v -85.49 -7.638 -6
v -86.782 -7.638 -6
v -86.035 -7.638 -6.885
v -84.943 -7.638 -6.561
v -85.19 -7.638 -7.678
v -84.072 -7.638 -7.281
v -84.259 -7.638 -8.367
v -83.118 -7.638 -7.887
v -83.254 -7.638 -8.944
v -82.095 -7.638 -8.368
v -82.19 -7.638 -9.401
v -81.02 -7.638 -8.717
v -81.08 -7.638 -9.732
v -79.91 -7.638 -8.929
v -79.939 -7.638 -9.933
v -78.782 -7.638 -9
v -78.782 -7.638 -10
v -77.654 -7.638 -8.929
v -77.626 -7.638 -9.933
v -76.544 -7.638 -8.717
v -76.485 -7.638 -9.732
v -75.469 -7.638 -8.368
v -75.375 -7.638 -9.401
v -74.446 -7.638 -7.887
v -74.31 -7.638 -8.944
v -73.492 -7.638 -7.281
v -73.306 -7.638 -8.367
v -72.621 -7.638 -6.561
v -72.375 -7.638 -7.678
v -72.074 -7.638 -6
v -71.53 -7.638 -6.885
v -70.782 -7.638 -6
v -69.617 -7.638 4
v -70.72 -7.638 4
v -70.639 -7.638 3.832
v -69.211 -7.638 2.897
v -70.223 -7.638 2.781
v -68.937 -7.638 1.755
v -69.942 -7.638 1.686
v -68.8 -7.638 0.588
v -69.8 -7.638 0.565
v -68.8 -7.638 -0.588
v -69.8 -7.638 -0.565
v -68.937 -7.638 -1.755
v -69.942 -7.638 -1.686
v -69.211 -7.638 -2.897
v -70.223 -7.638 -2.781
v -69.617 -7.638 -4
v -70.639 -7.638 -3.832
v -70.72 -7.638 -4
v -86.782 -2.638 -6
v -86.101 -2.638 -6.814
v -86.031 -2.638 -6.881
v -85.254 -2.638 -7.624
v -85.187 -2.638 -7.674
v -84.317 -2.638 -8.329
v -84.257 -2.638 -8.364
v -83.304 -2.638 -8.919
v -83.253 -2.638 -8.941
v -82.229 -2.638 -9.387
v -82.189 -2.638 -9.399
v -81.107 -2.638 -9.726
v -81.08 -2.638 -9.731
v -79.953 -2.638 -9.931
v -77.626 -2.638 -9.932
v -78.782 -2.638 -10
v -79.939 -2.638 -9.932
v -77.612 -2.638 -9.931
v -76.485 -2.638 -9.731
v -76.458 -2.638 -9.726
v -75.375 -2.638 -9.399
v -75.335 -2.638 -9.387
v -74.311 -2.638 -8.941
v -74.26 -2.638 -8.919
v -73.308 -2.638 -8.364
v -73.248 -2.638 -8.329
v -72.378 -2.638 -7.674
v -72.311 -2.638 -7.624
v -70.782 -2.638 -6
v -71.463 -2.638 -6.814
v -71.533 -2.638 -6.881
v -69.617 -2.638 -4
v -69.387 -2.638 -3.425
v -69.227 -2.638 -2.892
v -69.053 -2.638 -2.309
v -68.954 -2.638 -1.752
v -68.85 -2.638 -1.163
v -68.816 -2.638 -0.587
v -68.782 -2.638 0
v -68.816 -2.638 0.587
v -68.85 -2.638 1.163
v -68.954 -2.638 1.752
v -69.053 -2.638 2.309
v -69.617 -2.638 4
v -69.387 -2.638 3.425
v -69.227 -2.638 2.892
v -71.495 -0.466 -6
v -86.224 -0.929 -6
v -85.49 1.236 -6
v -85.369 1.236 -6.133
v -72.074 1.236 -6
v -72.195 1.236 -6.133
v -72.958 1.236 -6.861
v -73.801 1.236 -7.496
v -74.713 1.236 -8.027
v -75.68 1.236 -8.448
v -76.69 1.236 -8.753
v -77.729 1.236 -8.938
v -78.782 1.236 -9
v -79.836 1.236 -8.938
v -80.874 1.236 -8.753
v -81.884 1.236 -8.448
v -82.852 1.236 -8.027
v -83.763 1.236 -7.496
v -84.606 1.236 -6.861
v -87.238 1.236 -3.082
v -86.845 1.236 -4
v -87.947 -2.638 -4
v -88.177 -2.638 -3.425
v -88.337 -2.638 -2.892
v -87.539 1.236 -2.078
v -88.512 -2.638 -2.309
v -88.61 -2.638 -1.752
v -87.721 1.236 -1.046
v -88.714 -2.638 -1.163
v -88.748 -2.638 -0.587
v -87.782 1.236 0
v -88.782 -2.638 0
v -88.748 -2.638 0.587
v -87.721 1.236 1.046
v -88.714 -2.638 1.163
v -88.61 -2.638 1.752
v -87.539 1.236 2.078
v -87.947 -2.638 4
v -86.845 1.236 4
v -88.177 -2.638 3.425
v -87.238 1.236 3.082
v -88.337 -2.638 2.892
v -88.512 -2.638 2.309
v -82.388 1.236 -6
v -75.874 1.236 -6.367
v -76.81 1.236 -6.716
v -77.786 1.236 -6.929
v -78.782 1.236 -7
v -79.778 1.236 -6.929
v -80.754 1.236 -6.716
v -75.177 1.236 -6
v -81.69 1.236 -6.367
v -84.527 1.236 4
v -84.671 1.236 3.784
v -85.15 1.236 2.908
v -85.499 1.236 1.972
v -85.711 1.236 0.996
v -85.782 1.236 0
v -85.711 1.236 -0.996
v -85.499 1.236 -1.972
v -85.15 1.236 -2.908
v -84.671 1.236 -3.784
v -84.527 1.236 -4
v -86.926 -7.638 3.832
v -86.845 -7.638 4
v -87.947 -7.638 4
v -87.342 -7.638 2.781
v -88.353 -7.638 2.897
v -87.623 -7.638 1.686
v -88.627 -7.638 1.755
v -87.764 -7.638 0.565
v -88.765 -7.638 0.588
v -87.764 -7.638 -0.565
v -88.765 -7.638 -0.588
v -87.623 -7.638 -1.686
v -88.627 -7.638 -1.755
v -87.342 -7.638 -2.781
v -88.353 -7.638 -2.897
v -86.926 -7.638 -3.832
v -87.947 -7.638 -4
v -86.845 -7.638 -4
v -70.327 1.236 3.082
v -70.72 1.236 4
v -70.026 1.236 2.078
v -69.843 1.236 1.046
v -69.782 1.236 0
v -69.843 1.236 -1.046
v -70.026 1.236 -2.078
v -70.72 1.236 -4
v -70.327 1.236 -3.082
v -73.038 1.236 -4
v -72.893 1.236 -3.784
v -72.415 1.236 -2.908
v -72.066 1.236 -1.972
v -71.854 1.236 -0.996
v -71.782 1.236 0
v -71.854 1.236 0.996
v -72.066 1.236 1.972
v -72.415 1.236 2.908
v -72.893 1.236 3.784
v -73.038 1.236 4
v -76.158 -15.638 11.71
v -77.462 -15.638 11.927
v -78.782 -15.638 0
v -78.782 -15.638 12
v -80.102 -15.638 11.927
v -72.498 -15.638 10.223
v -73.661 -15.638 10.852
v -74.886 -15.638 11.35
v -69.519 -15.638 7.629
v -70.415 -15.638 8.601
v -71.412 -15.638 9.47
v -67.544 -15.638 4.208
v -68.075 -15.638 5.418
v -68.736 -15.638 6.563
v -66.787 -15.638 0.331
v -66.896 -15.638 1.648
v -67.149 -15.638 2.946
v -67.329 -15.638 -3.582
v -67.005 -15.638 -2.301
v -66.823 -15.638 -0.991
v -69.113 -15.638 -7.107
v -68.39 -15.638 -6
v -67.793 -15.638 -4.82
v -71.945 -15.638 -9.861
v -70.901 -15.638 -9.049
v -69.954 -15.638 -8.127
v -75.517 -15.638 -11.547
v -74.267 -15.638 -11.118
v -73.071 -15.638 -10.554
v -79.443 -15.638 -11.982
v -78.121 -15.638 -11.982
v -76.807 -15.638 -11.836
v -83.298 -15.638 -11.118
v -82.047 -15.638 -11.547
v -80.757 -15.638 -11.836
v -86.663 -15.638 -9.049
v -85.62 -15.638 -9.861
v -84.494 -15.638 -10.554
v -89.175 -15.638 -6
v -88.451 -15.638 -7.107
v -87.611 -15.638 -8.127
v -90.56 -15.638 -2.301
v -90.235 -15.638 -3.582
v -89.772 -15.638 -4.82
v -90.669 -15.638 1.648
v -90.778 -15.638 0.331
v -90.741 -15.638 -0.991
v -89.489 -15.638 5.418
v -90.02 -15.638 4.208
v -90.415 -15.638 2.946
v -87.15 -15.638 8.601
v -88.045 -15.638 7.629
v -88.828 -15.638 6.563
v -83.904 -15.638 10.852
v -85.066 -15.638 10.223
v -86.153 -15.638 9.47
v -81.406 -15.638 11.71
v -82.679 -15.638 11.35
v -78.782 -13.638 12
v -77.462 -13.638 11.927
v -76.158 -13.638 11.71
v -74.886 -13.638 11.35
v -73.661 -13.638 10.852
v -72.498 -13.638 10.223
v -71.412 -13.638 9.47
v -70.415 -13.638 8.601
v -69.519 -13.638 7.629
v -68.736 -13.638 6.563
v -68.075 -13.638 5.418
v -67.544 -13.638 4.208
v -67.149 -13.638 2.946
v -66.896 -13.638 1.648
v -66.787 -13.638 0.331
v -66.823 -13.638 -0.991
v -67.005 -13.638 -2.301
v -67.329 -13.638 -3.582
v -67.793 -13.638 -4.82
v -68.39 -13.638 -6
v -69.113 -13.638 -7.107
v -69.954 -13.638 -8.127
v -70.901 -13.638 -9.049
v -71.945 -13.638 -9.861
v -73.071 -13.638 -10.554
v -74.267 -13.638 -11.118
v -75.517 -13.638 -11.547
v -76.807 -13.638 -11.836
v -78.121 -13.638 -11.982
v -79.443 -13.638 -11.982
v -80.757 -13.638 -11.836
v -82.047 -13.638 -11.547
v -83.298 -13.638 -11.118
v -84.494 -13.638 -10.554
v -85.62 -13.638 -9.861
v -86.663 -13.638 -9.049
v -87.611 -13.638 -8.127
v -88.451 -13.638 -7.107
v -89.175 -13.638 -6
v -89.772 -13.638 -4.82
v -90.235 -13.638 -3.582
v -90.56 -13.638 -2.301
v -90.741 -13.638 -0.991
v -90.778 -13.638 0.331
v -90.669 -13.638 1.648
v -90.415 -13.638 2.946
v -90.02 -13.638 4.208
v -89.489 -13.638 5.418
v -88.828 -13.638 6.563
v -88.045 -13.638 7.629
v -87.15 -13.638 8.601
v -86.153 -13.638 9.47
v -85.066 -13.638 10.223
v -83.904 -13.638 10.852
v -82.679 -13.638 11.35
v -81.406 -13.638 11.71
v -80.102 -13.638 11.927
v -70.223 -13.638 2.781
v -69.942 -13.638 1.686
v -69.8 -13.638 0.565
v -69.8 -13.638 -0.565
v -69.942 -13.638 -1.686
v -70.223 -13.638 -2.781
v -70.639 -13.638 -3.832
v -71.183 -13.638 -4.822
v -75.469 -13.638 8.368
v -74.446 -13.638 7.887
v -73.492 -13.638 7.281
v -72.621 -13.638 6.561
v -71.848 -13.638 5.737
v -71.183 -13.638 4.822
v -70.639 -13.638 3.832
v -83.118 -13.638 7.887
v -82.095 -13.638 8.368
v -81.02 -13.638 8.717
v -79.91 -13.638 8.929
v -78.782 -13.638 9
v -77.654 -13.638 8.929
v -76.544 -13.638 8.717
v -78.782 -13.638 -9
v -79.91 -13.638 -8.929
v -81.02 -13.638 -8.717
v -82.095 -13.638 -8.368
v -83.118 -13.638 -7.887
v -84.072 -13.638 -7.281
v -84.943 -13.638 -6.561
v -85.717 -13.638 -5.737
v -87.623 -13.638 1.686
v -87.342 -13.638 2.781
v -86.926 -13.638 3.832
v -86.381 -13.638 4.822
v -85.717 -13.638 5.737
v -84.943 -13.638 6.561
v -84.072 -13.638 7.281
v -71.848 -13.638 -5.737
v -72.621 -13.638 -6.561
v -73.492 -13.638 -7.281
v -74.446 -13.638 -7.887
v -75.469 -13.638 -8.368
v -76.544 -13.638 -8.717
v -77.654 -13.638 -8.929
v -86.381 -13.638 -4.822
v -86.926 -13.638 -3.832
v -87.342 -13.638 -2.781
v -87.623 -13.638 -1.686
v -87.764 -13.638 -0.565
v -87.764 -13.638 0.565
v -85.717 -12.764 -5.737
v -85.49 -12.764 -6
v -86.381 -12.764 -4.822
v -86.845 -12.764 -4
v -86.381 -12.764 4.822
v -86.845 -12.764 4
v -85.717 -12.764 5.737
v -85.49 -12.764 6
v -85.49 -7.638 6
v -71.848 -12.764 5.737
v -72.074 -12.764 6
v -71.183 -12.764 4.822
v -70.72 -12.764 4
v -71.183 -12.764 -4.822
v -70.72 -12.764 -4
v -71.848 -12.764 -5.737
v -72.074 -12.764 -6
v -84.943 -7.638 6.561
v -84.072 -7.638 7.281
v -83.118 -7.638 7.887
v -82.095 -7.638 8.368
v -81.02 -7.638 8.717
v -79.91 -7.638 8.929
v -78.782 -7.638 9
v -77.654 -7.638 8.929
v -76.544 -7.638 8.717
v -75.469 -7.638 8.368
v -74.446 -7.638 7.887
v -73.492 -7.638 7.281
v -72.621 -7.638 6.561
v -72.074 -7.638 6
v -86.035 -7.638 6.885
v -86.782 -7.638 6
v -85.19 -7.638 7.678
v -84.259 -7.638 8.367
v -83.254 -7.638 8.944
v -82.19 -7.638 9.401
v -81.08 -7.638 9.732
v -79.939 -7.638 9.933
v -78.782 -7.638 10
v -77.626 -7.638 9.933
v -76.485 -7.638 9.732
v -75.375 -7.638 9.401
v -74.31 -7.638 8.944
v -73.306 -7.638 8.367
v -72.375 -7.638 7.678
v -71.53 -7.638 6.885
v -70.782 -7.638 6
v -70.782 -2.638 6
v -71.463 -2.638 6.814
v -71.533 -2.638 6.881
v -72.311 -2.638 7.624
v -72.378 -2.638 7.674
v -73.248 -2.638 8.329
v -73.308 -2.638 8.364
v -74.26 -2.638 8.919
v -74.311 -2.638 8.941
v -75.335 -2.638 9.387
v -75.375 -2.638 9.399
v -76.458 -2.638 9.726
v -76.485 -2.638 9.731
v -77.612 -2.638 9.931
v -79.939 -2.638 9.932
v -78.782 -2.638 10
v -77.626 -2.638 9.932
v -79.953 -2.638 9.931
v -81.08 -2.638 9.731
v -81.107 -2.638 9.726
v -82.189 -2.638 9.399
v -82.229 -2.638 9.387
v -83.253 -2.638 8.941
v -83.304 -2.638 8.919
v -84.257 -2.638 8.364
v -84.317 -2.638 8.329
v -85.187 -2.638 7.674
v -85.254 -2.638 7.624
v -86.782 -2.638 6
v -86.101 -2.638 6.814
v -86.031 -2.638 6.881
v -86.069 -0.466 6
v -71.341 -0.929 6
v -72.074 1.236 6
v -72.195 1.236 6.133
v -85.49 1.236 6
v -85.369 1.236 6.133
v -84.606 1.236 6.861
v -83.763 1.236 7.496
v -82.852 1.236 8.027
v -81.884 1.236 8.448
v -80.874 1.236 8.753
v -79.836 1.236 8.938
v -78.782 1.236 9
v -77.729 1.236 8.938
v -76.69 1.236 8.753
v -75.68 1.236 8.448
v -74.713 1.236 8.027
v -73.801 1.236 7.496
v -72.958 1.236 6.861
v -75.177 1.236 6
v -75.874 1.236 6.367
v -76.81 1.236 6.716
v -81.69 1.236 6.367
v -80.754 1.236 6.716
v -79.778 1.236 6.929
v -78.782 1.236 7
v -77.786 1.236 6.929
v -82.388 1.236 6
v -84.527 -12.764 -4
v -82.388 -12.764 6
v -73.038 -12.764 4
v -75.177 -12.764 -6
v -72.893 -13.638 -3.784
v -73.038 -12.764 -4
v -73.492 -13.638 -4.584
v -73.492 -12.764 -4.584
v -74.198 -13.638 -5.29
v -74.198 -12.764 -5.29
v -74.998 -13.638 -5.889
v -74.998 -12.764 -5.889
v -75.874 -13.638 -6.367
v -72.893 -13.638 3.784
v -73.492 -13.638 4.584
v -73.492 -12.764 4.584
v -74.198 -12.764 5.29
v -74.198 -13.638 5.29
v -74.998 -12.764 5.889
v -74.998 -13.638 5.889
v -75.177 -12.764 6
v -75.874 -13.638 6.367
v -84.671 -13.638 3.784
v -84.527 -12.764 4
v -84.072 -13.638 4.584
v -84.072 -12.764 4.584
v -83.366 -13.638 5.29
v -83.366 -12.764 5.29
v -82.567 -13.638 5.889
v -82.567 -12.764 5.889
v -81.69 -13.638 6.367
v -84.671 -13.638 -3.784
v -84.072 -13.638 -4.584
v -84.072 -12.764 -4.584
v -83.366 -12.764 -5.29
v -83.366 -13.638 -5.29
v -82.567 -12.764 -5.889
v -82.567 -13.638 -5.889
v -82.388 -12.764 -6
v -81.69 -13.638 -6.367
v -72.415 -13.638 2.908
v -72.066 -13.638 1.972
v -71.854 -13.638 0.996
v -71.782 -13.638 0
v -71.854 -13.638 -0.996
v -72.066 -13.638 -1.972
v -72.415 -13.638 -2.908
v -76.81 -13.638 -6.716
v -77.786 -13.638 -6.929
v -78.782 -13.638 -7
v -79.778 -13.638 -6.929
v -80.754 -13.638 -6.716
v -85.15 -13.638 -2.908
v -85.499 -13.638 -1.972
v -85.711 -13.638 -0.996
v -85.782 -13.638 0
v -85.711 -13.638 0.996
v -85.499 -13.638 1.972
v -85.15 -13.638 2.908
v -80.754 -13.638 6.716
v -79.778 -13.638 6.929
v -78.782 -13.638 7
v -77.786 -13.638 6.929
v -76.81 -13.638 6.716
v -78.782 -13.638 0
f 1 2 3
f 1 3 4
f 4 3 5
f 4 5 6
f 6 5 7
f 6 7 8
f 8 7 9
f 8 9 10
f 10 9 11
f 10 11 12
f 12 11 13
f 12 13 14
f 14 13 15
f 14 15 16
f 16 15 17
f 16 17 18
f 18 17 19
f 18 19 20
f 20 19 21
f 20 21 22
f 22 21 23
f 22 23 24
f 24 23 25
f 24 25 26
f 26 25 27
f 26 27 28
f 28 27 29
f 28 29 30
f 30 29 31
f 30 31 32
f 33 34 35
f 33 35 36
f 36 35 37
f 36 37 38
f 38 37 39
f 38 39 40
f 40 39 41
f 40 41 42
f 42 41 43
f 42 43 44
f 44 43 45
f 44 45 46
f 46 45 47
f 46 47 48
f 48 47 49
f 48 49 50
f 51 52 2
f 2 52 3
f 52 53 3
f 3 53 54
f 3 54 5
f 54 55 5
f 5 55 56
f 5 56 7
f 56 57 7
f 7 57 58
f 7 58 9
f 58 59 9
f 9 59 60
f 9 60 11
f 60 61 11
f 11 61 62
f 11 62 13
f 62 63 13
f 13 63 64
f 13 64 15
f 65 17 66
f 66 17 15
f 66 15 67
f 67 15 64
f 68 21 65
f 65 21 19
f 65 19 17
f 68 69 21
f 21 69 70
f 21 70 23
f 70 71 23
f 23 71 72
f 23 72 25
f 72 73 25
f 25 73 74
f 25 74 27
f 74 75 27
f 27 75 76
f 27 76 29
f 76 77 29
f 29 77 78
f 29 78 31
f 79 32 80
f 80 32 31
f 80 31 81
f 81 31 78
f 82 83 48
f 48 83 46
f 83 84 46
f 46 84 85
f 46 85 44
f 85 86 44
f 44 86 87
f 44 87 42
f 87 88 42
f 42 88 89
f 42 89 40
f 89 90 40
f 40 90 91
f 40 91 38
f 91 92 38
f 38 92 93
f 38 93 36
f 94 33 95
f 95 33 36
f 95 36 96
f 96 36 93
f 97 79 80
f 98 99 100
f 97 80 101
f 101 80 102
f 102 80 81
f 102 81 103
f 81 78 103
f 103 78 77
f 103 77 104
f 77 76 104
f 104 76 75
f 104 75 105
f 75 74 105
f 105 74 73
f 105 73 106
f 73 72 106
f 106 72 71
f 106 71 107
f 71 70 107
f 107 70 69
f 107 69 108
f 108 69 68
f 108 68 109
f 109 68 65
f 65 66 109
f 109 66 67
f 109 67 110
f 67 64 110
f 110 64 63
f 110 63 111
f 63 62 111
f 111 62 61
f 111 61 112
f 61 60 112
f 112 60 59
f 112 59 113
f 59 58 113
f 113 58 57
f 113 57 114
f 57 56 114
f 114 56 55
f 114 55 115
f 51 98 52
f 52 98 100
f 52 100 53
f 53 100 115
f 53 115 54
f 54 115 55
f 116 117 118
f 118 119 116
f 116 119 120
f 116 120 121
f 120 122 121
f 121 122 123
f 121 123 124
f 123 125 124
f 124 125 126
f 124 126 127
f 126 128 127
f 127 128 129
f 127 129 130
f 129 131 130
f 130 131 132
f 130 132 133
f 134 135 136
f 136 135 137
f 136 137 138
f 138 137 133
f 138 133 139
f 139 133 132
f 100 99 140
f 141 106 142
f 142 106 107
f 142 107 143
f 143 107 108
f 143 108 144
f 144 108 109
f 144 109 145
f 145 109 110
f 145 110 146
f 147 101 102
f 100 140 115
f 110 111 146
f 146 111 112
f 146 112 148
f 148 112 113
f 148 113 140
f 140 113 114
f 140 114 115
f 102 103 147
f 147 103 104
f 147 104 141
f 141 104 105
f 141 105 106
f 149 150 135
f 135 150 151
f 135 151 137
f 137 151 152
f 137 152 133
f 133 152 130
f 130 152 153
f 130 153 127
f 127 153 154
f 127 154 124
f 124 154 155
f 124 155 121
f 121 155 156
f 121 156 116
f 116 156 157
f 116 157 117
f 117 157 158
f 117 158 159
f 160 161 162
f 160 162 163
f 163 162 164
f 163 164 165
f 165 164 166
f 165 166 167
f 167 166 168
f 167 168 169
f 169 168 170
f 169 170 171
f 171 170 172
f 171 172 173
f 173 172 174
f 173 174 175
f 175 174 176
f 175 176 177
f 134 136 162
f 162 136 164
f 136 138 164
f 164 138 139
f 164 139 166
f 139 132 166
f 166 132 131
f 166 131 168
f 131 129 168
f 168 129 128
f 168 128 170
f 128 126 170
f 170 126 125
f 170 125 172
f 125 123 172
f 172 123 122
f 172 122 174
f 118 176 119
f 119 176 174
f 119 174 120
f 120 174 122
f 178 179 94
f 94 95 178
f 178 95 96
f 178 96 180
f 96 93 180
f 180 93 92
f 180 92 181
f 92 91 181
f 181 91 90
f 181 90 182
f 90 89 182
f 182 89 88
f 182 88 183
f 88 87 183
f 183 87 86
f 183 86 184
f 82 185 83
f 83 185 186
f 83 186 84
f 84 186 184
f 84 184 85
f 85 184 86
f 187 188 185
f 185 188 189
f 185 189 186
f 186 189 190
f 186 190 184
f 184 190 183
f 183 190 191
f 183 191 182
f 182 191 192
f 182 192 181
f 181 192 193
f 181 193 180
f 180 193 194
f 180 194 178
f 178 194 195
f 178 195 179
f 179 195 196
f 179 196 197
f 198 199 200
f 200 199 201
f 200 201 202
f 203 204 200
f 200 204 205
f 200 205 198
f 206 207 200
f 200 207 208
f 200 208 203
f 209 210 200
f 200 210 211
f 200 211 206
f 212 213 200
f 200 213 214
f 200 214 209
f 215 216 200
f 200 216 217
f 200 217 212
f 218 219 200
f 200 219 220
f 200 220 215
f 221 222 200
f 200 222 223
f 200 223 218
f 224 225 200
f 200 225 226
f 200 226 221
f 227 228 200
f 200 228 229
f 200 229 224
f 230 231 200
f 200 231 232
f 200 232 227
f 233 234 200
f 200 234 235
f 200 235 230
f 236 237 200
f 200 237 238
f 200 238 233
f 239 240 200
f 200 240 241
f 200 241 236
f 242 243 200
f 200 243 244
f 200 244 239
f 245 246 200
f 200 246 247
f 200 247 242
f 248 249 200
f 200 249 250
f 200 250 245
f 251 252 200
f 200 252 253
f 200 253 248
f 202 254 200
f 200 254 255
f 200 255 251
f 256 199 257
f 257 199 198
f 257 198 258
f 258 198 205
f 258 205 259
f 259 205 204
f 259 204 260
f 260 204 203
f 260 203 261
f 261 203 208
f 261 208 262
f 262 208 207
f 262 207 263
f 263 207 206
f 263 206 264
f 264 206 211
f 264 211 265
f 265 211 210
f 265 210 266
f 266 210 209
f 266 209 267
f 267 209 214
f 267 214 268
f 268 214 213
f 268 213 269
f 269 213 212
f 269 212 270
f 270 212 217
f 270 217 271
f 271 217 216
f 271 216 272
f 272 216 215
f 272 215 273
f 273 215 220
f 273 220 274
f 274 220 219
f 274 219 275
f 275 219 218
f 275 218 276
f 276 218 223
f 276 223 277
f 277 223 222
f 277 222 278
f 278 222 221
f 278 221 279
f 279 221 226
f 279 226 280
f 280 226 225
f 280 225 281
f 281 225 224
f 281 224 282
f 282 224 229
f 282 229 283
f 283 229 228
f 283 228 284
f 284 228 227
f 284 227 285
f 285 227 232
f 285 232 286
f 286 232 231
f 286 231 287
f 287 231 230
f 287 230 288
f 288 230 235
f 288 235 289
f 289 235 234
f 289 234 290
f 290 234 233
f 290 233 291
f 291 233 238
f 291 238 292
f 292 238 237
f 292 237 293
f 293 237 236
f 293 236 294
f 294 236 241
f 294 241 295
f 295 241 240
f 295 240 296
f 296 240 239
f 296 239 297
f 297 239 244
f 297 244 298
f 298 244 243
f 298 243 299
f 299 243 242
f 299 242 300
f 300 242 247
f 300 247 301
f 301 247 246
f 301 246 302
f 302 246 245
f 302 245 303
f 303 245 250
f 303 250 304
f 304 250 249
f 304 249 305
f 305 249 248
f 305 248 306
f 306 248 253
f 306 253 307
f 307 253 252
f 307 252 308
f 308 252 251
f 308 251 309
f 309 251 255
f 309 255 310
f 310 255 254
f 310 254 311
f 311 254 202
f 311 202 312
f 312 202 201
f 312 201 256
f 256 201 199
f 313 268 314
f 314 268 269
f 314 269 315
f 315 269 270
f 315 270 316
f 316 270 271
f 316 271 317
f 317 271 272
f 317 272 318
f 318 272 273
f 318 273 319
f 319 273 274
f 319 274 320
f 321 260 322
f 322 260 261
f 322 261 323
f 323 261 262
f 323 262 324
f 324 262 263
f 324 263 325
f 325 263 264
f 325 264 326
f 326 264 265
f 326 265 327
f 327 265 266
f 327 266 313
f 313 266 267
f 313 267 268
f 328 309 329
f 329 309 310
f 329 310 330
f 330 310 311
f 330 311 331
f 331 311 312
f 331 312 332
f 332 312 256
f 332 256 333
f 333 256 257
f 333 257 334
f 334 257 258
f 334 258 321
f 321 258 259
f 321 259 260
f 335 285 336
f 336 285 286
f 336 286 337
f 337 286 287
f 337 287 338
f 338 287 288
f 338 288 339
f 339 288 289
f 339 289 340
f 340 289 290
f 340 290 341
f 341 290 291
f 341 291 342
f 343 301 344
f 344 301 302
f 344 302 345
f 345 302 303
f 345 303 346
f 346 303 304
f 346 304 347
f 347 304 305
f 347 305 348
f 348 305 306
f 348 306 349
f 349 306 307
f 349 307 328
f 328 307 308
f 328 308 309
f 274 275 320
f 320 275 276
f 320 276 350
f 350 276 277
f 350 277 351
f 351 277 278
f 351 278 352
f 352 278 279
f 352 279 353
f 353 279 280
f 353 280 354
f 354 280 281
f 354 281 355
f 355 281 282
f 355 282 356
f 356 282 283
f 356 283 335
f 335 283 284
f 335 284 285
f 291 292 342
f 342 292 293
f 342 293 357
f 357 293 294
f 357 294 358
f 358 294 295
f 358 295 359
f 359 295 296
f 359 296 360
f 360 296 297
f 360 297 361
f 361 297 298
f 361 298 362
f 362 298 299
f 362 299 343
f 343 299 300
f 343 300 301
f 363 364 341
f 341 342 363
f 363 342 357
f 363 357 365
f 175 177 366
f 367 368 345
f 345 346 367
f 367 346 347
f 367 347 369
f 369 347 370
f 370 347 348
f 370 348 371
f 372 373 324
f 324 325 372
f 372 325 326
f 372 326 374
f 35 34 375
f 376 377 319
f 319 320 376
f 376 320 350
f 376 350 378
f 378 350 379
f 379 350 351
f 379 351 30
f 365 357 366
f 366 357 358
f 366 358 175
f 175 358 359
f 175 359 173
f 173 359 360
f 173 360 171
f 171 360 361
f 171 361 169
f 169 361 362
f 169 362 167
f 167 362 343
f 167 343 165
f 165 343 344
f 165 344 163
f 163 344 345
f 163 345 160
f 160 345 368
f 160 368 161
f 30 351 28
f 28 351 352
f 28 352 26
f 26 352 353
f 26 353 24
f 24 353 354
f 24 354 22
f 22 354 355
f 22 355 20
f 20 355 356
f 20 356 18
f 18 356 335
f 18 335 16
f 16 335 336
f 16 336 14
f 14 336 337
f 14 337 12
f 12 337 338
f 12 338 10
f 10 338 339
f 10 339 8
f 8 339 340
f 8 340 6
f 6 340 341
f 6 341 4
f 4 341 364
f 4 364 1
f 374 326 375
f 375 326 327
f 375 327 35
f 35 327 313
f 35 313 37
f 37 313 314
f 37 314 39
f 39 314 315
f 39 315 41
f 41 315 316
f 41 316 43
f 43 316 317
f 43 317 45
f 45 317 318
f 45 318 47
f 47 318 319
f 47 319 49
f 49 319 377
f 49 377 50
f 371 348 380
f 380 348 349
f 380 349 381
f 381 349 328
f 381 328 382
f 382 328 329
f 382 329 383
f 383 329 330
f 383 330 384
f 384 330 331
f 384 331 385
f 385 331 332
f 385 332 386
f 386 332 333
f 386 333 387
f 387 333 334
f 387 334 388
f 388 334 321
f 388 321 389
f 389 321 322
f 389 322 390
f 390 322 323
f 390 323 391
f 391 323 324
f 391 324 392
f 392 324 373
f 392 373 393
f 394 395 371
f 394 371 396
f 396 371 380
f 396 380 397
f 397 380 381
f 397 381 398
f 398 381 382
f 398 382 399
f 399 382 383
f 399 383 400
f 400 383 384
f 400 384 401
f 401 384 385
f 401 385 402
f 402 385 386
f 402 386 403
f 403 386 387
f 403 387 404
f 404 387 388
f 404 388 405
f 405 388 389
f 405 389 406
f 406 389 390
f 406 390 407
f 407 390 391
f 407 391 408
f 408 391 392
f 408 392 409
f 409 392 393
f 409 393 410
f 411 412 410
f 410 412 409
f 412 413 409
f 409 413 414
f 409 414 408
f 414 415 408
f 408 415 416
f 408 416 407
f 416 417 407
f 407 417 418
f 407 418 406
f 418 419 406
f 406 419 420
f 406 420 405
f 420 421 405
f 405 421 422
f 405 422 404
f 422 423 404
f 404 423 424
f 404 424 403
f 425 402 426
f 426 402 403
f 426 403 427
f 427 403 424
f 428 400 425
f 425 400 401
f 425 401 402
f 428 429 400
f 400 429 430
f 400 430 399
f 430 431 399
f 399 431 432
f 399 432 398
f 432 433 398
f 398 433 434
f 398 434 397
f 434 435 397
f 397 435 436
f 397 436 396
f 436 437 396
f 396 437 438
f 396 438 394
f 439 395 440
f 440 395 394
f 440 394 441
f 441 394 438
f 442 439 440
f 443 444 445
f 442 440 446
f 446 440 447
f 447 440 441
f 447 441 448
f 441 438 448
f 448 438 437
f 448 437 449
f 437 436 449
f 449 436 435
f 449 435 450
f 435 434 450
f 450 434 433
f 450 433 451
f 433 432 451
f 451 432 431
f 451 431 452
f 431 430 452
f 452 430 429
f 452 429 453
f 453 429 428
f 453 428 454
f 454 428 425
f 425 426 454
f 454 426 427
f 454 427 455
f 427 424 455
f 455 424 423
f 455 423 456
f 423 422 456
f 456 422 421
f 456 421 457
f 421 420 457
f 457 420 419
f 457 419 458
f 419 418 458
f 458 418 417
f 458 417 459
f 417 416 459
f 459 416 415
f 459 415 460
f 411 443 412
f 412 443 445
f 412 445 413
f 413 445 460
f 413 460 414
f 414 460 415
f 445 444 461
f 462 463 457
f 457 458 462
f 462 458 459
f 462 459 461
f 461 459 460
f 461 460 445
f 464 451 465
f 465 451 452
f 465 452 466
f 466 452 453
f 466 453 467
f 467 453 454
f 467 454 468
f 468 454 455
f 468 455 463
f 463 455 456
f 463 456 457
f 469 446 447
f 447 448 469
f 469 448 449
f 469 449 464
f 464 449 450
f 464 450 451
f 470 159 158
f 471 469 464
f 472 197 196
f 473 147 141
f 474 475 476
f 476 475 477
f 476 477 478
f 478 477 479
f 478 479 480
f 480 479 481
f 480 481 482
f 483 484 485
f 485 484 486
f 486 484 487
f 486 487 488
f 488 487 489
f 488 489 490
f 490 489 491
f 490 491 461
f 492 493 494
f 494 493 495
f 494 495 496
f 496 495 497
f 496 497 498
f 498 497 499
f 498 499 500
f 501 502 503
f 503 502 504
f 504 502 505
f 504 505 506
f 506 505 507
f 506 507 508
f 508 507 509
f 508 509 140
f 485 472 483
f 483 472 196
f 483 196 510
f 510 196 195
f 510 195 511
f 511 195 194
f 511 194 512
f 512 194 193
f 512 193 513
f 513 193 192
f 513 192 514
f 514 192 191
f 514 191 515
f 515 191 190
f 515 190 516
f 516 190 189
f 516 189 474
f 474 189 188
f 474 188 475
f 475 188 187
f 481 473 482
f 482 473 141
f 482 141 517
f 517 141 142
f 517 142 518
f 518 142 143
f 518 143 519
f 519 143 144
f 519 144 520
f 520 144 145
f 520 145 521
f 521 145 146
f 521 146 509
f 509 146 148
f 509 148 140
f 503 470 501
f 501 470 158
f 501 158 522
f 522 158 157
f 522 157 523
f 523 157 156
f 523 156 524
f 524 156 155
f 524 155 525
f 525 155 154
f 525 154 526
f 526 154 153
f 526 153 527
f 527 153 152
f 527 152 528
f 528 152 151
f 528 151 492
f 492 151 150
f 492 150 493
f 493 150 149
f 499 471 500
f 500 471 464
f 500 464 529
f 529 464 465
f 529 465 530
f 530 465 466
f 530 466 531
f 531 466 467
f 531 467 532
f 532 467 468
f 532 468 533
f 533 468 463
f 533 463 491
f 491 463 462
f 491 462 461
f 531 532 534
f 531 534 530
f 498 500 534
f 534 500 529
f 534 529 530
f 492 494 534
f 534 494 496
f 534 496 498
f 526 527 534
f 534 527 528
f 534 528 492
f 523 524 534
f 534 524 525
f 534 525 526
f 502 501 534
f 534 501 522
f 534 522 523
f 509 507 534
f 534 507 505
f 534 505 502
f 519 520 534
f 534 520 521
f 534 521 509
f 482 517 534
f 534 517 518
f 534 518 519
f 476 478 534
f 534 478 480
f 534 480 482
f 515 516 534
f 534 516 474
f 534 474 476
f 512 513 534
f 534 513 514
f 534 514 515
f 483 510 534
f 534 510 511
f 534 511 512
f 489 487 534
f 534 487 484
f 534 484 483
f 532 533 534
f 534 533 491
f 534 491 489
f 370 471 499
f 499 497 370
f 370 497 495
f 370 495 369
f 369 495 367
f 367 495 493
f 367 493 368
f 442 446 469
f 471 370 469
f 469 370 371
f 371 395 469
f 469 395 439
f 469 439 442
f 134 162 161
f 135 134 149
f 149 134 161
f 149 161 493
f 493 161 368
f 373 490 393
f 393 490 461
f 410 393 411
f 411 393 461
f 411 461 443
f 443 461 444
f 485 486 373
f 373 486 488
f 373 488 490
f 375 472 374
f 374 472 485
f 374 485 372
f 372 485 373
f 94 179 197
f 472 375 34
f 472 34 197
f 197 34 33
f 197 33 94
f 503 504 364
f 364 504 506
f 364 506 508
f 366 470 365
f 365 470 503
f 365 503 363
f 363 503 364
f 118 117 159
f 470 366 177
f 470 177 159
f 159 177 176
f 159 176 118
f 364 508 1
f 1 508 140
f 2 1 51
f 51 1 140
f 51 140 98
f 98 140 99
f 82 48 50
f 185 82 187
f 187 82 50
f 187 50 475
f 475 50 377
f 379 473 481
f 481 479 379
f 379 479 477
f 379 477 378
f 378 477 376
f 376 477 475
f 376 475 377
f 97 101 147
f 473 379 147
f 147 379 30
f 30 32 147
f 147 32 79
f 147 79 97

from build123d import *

# Parameters (mm, degrees)
CROQUIS2_W            = 26
CROQUIS2_H            = 2
CORTAR_EXTRUIR1_DEPTH = 14


with BuildPart() as part:
    # Croquis1 → Revolución1 (revolve)
    with BuildSketch(Plane.XY):
        Polygon((-78.782252338, -15.637996222), (-90.782252338, -15.637996222), (-90.782252338, -13.637996222), (-87.782252338, -13.637996222), (-87.782252338, -7.637996222), (-88.782252338, -7.637996222), (-88.782252338, -2.637996222), (-87.782252338, 1.235955759), (-85.782252338, 1.235955759), (-85.782252338, -13.637996222), (-78.782252338, -13.637996222), align=None)
    revolve(axis=Axis((-78.782252338, -13.637996222, 0), (0, -1, 0)))

    # Croquis2 → Cortar-Extruir1 (cut)
    with BuildSketch(Plane(origin=(0, 1.235955759, 0), x_dir=(1, 0, 0), z_dir=(0, 1, 0))):
        with Locations((-78.782252338, -5)):
            Rectangle(CROQUIS2_W, CROQUIS2_H)
        with Locations((-78.782252338, 5)):
            Rectangle(CROQUIS2_W, CROQUIS2_H)
    extrude(amount=-CORTAR_EXTRUIR1_DEPTH, mode=Mode.SUBTRACT)


solid = part.part
